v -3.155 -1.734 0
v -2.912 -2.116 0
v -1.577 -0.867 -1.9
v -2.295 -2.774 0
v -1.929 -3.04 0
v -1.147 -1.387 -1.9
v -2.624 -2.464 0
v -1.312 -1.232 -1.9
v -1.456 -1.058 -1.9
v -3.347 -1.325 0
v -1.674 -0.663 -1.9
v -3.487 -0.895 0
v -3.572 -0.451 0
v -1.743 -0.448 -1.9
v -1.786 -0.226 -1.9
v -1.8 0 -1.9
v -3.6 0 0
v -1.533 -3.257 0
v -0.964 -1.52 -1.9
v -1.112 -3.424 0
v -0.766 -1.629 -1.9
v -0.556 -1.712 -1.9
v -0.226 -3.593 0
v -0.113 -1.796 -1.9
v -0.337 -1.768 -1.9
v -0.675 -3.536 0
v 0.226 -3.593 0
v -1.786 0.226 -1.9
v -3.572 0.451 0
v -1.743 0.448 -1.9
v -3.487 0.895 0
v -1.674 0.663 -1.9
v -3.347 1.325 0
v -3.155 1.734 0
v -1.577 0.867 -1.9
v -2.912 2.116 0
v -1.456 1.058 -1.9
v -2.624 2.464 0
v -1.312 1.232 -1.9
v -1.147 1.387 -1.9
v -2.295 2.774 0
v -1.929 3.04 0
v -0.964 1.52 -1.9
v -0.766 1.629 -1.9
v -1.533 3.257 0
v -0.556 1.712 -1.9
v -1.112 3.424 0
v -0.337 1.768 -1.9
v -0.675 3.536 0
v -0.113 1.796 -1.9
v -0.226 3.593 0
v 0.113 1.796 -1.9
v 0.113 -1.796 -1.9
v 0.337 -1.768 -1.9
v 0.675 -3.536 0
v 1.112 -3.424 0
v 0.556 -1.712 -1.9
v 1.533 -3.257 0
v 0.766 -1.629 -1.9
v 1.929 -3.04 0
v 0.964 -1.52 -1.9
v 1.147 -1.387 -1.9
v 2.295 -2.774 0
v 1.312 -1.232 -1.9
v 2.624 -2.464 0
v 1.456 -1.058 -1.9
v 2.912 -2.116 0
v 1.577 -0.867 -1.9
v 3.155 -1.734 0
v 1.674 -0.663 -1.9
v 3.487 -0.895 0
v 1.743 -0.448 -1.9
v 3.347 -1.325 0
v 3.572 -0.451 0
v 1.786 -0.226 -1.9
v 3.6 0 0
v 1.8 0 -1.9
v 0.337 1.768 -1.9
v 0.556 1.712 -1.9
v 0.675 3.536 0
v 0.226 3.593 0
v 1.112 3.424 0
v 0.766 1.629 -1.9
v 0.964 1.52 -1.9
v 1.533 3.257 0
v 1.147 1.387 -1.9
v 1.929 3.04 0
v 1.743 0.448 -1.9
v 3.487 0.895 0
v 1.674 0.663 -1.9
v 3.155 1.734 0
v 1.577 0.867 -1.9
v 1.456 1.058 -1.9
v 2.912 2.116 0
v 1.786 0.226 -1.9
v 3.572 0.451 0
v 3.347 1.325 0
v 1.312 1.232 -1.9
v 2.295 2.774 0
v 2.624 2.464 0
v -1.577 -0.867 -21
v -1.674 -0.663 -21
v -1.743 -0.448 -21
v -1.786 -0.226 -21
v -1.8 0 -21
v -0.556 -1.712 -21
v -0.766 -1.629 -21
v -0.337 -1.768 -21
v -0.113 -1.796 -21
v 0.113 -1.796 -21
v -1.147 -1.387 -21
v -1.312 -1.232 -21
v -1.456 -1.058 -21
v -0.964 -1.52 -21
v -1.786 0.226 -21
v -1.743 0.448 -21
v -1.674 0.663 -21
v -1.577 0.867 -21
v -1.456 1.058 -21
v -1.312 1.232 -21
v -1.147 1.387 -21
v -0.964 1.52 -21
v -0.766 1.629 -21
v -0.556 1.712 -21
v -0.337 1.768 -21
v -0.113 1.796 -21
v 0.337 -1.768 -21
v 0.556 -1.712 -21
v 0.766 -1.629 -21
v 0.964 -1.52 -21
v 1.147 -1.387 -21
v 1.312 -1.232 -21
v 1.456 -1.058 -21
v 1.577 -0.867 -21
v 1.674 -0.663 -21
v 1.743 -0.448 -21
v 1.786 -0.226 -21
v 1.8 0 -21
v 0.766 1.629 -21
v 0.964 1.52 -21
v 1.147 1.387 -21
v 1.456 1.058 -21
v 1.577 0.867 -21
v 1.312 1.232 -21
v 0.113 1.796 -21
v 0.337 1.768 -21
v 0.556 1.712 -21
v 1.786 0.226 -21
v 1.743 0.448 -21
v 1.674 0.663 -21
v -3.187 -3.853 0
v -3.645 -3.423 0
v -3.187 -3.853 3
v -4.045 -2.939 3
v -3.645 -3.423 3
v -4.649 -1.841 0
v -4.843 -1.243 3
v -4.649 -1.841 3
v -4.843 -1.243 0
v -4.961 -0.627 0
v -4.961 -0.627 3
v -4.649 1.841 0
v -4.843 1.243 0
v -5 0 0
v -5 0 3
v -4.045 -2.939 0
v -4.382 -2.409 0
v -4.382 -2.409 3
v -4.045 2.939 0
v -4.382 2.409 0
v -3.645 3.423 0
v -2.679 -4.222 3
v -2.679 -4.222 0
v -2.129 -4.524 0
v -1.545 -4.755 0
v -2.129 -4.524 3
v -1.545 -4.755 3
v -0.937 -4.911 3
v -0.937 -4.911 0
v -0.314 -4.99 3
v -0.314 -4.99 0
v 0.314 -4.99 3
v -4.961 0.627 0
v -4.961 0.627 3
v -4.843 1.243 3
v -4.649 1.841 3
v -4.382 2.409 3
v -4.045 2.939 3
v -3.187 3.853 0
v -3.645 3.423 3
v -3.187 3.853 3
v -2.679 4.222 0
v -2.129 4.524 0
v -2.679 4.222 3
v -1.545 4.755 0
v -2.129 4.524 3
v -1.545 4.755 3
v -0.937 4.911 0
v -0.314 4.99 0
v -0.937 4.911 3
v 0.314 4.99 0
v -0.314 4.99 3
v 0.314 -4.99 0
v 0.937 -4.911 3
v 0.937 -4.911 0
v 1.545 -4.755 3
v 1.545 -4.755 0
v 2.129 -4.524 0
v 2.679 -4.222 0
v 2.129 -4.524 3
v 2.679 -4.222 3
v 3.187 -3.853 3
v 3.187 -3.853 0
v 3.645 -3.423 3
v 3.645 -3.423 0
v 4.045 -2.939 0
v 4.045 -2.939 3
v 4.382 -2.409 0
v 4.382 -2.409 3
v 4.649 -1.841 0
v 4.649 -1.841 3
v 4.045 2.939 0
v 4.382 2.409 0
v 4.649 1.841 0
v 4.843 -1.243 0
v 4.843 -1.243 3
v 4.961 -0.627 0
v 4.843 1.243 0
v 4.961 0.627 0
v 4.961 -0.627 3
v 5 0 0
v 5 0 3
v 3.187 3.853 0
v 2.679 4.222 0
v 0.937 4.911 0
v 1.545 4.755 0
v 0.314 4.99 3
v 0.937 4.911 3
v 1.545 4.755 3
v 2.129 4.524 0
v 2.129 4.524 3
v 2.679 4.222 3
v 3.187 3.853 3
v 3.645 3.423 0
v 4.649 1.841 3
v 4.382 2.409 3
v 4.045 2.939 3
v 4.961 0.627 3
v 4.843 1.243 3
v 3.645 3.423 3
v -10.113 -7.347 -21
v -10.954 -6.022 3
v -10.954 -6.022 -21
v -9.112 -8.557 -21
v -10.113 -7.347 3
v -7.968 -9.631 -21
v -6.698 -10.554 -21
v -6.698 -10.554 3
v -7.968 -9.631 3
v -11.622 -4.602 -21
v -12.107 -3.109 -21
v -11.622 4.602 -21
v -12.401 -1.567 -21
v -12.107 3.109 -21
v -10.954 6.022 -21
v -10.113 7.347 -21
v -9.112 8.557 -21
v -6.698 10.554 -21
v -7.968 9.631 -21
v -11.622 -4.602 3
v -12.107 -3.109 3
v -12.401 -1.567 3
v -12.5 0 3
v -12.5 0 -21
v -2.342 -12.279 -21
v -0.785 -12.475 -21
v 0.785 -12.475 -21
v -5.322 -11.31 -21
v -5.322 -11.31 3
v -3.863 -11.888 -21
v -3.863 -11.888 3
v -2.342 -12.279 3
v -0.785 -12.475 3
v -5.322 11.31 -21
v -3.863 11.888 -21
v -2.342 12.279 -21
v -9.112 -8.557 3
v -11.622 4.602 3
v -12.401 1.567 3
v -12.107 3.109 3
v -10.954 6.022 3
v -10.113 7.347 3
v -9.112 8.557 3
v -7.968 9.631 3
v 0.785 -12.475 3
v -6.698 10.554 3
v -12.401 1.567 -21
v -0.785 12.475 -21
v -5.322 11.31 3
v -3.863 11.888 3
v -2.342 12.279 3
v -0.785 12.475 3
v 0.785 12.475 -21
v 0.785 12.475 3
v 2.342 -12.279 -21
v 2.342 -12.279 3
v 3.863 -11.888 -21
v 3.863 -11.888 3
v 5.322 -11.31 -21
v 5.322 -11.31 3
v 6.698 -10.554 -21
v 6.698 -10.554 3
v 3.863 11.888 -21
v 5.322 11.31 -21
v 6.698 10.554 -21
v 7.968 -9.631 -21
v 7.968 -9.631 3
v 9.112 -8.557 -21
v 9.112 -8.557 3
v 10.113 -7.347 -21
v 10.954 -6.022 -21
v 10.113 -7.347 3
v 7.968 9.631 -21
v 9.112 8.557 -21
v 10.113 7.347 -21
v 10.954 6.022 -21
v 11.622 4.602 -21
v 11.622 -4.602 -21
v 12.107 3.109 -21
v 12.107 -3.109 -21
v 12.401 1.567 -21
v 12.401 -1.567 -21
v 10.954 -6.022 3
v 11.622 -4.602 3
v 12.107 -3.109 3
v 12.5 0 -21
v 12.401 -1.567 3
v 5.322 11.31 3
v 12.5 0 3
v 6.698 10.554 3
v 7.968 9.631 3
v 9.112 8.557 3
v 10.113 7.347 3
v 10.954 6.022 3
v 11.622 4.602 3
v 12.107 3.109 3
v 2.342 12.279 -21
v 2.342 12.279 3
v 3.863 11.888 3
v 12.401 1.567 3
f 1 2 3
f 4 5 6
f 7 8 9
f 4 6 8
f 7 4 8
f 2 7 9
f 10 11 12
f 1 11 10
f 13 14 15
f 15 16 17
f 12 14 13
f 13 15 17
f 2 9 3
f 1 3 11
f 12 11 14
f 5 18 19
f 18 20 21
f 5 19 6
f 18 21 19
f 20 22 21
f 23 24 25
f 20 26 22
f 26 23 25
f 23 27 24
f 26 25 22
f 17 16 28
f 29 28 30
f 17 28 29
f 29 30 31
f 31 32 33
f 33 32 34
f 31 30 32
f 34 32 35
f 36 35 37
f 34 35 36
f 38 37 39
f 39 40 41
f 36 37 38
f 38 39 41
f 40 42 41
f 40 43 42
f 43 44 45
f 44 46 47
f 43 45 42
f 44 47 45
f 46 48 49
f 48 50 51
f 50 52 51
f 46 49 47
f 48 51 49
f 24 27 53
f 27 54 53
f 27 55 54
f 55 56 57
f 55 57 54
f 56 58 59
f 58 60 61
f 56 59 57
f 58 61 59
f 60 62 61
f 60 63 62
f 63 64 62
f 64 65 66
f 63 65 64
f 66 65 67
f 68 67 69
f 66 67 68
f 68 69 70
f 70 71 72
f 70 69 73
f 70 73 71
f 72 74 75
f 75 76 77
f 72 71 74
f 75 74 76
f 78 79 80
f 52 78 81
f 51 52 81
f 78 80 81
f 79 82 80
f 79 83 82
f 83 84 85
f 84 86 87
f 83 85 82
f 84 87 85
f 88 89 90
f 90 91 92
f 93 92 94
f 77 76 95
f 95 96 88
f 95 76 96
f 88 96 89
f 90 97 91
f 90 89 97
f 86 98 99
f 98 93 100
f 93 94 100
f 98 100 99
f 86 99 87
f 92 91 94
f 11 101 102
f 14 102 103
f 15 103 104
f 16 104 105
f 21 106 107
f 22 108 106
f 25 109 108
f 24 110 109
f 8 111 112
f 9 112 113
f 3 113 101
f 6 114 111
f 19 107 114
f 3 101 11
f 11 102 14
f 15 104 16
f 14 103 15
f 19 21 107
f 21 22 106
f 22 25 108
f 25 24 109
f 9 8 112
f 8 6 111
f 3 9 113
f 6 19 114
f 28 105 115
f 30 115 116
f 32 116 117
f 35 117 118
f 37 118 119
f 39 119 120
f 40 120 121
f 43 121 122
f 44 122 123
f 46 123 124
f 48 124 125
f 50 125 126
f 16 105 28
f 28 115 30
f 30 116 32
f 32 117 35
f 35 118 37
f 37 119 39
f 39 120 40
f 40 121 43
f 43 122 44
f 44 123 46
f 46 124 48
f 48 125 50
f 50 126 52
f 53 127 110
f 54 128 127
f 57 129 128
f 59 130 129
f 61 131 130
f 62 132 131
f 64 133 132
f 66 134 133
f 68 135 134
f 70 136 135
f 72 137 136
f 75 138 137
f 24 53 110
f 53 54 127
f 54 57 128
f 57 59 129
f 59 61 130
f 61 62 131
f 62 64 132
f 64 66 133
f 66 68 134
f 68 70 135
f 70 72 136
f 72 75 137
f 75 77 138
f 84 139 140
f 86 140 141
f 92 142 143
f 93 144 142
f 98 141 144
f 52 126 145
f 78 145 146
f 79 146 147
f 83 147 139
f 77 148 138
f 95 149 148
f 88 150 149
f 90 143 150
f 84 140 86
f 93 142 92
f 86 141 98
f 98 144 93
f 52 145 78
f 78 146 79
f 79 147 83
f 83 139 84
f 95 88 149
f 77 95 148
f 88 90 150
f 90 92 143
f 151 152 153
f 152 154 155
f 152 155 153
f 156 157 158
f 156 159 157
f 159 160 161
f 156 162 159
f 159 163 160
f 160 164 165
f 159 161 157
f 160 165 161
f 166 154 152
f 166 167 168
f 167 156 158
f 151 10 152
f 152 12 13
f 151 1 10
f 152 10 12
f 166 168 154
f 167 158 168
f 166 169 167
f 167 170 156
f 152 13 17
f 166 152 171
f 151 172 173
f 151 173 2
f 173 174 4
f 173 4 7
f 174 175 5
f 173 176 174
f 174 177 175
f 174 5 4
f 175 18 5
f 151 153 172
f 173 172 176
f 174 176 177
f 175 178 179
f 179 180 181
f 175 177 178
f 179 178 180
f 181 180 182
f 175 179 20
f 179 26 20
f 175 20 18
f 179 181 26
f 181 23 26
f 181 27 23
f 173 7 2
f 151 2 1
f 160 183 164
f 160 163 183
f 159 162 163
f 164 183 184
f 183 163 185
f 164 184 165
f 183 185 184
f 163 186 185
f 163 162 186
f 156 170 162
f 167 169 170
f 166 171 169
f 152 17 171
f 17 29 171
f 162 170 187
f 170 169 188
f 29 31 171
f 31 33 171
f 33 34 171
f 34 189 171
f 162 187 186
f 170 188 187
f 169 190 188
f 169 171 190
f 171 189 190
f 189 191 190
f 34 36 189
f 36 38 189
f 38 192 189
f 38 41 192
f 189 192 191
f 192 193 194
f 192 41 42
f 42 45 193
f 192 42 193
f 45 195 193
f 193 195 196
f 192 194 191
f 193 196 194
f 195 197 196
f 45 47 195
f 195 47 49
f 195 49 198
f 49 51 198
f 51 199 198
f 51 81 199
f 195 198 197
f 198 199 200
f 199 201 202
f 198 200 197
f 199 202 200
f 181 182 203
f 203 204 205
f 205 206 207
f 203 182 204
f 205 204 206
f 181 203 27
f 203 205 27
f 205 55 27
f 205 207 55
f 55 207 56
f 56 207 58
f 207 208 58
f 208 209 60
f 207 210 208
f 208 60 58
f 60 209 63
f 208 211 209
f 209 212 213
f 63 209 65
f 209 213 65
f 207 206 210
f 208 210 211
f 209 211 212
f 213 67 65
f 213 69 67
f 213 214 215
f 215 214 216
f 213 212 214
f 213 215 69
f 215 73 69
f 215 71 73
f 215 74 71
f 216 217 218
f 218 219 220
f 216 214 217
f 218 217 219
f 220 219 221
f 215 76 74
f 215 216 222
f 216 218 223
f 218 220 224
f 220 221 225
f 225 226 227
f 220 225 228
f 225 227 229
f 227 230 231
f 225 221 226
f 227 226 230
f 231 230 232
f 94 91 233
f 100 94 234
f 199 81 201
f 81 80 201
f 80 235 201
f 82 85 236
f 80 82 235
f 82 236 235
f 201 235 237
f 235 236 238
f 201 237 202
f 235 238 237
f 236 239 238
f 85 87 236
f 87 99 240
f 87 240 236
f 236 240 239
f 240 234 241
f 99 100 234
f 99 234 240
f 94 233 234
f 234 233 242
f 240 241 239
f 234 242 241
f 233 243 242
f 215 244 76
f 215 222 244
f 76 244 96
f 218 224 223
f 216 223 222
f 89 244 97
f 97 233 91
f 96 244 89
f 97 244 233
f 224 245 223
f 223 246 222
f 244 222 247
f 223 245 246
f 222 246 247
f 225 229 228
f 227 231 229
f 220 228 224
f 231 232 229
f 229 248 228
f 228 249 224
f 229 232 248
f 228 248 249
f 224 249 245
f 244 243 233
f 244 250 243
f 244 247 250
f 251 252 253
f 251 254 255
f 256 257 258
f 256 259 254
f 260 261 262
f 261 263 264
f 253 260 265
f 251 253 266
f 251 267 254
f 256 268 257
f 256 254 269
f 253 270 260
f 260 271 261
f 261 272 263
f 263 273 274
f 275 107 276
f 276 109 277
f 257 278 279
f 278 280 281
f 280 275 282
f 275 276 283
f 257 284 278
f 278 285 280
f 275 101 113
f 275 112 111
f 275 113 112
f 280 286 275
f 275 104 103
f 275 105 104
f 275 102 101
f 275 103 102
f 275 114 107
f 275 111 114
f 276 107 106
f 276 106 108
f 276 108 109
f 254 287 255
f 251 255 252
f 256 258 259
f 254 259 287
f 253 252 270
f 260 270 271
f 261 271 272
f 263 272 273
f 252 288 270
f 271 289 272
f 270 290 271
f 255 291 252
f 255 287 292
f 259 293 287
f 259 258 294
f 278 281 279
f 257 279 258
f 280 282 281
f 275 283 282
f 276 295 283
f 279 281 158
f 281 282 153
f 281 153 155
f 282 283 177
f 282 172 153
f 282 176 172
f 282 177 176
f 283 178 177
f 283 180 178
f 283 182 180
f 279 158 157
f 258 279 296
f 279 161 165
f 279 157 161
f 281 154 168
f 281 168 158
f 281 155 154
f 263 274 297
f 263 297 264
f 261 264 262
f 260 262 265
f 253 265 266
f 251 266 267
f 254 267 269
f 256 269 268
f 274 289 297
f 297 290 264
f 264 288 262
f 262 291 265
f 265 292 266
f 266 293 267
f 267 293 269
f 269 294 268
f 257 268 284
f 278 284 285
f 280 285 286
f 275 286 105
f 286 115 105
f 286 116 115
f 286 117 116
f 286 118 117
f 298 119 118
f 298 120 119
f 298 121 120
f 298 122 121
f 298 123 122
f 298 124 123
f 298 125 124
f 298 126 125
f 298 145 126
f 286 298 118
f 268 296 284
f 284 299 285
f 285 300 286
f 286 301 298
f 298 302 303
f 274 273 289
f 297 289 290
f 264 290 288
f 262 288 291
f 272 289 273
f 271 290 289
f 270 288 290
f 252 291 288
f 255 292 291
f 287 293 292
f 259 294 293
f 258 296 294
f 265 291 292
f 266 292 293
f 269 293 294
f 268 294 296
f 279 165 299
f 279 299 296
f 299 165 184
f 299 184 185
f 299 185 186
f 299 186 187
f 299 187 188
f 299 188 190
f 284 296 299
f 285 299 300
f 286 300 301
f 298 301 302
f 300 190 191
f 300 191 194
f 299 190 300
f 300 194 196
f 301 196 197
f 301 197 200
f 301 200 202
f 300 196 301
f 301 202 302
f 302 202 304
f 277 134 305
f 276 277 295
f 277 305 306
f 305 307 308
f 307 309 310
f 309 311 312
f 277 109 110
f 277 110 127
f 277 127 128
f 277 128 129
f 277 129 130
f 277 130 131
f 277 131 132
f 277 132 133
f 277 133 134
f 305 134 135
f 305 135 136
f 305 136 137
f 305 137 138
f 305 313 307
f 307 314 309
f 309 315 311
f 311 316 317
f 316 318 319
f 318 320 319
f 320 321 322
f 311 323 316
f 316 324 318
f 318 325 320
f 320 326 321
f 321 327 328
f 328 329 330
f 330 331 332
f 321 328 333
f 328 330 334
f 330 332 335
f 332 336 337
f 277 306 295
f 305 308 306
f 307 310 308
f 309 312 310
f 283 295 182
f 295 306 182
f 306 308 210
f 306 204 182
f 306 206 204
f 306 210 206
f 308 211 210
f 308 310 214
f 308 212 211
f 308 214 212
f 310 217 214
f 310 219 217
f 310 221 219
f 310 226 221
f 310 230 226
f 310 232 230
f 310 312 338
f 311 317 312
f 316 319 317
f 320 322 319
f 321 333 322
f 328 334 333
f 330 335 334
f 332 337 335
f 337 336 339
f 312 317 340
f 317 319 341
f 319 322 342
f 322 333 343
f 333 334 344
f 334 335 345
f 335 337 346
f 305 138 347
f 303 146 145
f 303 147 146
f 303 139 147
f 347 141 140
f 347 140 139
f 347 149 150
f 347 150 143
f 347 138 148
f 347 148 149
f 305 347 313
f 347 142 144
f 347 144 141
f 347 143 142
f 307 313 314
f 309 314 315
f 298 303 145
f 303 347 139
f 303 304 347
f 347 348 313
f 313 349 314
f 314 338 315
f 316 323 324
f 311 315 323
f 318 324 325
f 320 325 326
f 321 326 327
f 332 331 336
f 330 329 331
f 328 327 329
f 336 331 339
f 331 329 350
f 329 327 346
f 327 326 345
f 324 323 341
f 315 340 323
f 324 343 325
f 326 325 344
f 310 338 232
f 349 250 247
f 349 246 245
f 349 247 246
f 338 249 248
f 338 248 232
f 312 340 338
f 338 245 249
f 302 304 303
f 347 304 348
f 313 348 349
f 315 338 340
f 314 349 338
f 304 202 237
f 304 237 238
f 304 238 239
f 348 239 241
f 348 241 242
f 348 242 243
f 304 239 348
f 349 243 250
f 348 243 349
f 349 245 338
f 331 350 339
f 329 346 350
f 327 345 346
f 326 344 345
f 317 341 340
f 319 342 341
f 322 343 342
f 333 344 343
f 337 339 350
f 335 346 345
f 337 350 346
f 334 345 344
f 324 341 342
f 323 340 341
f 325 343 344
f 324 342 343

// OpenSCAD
$fn = 50;


difference() {
	union() {
		translate(v = [0, 0, -21.0000000000]) {
			cylinder(h = 24, r = 12.5000000000);
		}
	}
	union() {
		translate(v = [0, 0, 0]) {
			rotate(a = [0, 0, 0]) {
				difference() {
					union() {
						translate(v = [0, 0, -24.0000000000]) {
							cylinder(h = 24, r = 1.5000000000);
						}
						translate(v = [0, 0, -1.9000000000]) {
							cylinder(h = 1.9000000000, r1 = 1.8000000000, r2 = 3.6000000000);
						}
						translate(v = [0, 0, -24.0000000000]) {
							cylinder(h = 24, r = 1.8000000000);
						}
						translate(v = [0, 0, -24.0000000000]) {
							cylinder(h = 24, r = 1.5000000000);
						}
					}
					union();
				}
			}
		}
		#cylinder(h = 3, r = 5.0000000000);
	}
}
